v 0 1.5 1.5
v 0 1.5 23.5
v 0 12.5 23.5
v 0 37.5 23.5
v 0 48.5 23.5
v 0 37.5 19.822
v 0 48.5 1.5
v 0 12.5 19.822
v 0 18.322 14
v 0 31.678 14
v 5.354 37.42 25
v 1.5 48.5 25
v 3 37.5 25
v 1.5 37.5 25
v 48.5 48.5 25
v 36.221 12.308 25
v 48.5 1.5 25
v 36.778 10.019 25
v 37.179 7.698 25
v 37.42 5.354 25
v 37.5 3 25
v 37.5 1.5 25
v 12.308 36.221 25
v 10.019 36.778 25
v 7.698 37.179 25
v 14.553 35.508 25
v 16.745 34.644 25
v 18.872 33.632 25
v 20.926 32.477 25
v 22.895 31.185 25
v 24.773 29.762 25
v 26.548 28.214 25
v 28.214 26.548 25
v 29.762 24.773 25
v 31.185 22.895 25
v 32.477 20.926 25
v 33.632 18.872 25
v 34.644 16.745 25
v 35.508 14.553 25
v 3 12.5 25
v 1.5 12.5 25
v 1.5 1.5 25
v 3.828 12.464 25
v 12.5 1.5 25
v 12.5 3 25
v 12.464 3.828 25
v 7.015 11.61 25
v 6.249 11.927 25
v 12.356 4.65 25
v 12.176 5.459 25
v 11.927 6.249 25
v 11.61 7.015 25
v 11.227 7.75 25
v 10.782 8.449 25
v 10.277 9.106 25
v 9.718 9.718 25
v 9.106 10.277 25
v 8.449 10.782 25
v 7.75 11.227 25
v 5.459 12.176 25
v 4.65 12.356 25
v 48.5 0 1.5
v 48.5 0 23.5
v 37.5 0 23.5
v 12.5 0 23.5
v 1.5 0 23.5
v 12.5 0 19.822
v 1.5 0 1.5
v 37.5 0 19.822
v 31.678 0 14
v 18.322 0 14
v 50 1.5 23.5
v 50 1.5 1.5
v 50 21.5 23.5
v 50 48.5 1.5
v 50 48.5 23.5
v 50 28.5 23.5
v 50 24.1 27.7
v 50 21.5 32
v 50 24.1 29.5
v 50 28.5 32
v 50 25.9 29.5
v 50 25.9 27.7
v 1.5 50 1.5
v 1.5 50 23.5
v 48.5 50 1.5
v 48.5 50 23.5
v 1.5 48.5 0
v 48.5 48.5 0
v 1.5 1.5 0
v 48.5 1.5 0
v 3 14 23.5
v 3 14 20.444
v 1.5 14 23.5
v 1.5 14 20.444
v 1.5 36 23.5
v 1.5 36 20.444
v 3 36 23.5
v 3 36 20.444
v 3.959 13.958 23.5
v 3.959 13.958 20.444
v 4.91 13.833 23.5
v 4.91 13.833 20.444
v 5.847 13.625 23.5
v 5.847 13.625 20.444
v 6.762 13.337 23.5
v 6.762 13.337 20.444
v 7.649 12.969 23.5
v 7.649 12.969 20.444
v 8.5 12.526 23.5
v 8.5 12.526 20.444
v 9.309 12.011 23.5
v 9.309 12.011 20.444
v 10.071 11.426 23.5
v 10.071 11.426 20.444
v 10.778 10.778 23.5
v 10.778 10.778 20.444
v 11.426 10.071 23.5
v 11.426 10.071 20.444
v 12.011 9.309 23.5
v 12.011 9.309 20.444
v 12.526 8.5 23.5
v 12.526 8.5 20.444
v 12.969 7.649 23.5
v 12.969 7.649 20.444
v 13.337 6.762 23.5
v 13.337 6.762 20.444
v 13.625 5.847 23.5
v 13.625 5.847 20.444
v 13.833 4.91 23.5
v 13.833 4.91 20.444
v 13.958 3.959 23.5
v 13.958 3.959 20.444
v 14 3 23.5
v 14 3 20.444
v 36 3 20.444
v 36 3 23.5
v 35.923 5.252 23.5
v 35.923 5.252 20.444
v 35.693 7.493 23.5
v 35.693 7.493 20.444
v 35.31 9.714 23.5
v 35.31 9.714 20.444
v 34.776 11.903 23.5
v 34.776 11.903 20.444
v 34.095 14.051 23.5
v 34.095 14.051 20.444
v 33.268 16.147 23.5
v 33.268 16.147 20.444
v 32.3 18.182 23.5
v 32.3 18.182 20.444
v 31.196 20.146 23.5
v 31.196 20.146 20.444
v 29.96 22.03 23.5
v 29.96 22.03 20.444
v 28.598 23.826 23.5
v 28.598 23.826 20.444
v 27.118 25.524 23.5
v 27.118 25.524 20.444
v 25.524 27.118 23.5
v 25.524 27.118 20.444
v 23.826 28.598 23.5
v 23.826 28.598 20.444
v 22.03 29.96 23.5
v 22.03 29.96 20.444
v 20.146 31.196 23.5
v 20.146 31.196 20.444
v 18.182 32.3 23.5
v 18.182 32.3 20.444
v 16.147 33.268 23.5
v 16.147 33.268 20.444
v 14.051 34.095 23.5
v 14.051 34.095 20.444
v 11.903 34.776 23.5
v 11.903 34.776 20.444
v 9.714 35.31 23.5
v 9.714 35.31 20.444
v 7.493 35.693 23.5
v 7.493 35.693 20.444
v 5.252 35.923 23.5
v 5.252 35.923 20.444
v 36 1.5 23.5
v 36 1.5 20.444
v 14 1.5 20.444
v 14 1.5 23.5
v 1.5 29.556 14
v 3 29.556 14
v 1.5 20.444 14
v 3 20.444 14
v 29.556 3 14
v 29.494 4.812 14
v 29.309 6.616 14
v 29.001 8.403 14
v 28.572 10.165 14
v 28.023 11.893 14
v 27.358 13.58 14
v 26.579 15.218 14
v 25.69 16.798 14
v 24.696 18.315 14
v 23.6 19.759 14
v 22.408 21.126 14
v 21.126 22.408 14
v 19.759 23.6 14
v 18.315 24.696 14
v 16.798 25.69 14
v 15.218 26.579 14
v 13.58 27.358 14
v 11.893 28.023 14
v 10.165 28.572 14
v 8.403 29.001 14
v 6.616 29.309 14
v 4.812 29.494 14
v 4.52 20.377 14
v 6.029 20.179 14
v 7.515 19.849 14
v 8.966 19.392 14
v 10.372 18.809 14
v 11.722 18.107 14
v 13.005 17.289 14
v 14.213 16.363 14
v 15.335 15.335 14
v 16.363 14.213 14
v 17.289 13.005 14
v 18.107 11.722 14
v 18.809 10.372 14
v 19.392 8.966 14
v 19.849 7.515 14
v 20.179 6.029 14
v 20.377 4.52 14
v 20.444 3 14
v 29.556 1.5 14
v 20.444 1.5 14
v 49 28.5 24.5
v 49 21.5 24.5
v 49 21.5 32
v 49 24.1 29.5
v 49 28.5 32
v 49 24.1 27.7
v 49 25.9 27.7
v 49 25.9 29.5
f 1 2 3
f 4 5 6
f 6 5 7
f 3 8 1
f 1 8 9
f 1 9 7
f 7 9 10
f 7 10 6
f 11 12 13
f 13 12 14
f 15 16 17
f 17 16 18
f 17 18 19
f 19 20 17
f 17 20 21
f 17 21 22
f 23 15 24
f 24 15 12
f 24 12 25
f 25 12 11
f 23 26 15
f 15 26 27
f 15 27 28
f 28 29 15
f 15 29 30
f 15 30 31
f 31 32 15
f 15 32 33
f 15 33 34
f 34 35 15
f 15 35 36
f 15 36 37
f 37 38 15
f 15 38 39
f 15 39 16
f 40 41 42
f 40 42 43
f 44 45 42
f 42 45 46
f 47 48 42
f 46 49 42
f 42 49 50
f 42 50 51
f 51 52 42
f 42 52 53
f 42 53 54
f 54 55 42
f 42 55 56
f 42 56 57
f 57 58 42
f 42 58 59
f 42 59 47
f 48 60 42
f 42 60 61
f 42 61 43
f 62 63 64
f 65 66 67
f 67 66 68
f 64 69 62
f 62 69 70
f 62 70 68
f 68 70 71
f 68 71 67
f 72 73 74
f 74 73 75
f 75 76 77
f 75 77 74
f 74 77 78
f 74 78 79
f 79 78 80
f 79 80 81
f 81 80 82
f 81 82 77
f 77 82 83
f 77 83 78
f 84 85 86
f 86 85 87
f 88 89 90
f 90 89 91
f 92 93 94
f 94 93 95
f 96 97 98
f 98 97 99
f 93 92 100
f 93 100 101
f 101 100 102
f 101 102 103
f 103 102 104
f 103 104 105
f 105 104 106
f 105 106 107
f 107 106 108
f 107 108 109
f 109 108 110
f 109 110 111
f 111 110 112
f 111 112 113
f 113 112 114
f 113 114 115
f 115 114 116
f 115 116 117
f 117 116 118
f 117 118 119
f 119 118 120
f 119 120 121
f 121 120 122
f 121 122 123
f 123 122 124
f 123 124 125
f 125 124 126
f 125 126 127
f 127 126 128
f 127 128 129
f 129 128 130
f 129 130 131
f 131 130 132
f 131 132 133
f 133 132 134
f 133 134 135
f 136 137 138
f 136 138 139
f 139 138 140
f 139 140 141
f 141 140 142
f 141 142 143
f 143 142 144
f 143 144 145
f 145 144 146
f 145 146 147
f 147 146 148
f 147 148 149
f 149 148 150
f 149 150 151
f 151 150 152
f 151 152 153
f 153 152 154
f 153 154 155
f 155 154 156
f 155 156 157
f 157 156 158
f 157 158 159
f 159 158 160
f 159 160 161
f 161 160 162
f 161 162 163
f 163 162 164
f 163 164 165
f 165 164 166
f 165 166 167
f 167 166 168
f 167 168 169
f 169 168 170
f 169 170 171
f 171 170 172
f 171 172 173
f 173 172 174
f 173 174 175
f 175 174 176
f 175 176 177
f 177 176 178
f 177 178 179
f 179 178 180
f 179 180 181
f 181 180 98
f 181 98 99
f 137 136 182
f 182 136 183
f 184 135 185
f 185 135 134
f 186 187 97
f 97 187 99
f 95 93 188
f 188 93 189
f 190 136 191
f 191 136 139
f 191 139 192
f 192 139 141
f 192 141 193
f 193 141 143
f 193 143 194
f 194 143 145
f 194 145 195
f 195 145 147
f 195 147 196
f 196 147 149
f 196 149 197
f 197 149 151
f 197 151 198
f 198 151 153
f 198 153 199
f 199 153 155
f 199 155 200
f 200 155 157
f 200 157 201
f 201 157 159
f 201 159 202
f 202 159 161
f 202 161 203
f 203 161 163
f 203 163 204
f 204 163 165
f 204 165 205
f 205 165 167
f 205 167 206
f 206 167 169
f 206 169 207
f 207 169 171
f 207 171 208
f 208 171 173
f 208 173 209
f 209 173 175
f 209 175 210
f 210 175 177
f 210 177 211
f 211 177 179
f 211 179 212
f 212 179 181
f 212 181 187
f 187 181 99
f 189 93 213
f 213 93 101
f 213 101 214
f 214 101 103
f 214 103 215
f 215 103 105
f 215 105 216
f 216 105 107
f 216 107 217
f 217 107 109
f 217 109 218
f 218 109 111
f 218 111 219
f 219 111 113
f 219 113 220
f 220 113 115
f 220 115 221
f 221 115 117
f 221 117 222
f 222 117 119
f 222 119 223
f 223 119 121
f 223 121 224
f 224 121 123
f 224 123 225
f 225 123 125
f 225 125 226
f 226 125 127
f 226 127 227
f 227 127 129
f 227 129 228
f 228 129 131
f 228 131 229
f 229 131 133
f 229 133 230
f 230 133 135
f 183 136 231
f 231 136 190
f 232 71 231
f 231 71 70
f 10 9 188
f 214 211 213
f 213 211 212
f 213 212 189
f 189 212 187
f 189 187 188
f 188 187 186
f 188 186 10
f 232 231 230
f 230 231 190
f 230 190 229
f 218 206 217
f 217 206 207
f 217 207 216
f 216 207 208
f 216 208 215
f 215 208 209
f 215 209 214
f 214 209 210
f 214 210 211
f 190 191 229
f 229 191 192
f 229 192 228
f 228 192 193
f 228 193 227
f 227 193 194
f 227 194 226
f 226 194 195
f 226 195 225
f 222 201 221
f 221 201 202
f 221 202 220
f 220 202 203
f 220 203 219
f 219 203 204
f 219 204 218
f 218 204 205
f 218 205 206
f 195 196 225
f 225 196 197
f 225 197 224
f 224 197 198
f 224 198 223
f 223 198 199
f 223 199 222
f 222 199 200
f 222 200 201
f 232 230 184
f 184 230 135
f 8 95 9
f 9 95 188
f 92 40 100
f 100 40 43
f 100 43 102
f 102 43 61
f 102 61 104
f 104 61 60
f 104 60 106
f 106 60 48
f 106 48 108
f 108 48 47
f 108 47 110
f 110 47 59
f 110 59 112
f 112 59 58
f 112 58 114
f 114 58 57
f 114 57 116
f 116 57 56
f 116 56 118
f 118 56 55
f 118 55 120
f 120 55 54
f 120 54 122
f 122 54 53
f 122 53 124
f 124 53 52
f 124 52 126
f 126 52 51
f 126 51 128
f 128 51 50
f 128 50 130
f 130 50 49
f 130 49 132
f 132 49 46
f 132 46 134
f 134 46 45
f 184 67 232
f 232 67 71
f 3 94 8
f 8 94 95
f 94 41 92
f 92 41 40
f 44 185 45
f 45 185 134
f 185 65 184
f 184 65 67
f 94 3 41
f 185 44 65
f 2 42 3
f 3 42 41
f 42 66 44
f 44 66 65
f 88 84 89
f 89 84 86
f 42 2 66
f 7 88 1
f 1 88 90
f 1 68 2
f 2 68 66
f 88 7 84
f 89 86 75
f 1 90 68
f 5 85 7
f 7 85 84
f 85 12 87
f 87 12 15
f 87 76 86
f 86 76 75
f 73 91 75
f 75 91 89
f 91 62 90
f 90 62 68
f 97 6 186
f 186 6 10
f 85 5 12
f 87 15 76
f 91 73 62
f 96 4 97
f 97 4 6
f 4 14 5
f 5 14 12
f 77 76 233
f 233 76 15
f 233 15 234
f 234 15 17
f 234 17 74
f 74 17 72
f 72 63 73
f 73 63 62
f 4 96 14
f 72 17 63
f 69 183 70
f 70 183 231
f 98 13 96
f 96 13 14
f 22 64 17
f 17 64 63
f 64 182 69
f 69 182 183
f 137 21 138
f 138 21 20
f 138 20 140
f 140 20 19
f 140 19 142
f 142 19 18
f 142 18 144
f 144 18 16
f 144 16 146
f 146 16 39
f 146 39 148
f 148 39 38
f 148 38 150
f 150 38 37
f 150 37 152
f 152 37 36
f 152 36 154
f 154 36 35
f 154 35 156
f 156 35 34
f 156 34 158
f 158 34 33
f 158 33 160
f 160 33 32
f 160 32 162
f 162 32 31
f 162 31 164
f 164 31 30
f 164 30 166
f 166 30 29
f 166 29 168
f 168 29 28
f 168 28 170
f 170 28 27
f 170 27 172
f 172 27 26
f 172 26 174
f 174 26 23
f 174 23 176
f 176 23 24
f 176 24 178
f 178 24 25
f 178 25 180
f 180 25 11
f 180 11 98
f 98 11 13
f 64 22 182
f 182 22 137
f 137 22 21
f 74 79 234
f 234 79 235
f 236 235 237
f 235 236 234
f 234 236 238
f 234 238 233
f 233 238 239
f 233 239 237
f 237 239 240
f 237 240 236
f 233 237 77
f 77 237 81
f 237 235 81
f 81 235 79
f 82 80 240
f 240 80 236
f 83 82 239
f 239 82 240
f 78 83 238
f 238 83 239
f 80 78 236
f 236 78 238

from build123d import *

# Parameters (mm, degrees)
SKETCH1_W                = 50
SKETCH1_H                = 50
BOSS_EXTRUDE1_DEPTH      = 25
CHAMFER1_SIZE            = 1.5
BOSS_EXTRUDE2_DEPTH      = 7
BOSS_EXTRUDE2_DEPTH_BACK = 10
SKETCH5_W                = 1
SKETCH5_H                = 7
SKETCH6_W                = 1.8
SKETCH6_H                = 1.8
CUT_EXTRUDE1_DEPTH       = 7


with BuildPart() as part:
    # Sketch1 → Boss-Extrude1 (new body)
    with BuildSketch(Plane.XY):
        with Locations((25, 25)):
            Rectangle(SKETCH1_W, SKETCH1_H)
    extrude(amount=BOSS_EXTRUDE1_DEPTH)

    # Cut-Sweep1: sweep along a path in Sketch4
    with BuildLine(Plane.XY.offset(25)) as cut_sweep1_path:
        Line((25, 0), (25, 3))
        ThreePointArc((25, 3), (18.556349186, 18.556349186), (3, 25))
        Line((3, 25), (0, 25))
    # Sketch3 → Cut-Sweep1 (sweep, cut)
    with BuildSketch(Plane.XZ):
        Polygon((36, 29.556349186), (29.556349186, 36), (20.443650814, 36), (14, 29.556349186), (14, 20.443650814), (20.443650814, 14), (29.556349186, 14), (36, 20.443650814), align=None)
    sweep(path=cut_sweep1_path.line, mode=Mode.SUBTRACT)

    # Chamfer1
    chamfer1_edges = [part.edges().sort_by_distance(p)[0] for p in [
        (50, 25, 25),
        (25, 50, 25),
        (0, 7, 25),
        (43, 0, 25),
        (14, 1.5, 25),
        (10.778174593, 10.778174593, 25),
        (1.5, 14, 25),
        (36, 1.5, 25),
        (26.334523779, 26.334523779, 25),
        (1.5, 36, 25),
        (0, 14, 22.721825407),
        (0, 36, 22.721825407),
        (36, 0, 22.721825407),
        (14, 0, 22.721825407),
        (17.221825407, 0, 17.221825407),
        (32.778174593, 0, 17.221825407),
        (0, 32.778174593, 17.221825407),
        (0, 17.221825407, 17.221825407),
        (0, 43, 25),
        (25, 50, 0),
        (50, 25, 0),
        (25, 0, 0),
        (0, 25, 0),
        (7, 0, 25),
        (0, 50, 12.5),
        (50, 50, 12.5),
        (50, 0, 12.5),
        (0, 0, 12.5),
    ]]
    chamfer(chamfer1_edges, length=CHAMFER1_SIZE)

    # Sketch5 → Boss-Extrude2 (add, two sides: drawn at the far end of the back side and taken through both)
    with BuildSketch(Plane.XY.offset(25).offset(-BOSS_EXTRUDE2_DEPTH_BACK)):
        with Locations((49.5, 25)):
            Rectangle(SKETCH5_W, SKETCH5_H)
    extrude(amount=BOSS_EXTRUDE2_DEPTH + BOSS_EXTRUDE2_DEPTH_BACK)

    # Sketch6 → Cut-Extrude1 (cut)
    with BuildSketch(Plane(origin=(50, 0, 0), x_dir=(0, 0, -1), z_dir=(1, 0, 0))):
        with Locations((-28.6, 25)):
            Rectangle(SKETCH6_W, SKETCH6_H)
    extrude(amount=-CUT_EXTRUDE1_DEPTH, mode=Mode.SUBTRACT)


solid = part.part
